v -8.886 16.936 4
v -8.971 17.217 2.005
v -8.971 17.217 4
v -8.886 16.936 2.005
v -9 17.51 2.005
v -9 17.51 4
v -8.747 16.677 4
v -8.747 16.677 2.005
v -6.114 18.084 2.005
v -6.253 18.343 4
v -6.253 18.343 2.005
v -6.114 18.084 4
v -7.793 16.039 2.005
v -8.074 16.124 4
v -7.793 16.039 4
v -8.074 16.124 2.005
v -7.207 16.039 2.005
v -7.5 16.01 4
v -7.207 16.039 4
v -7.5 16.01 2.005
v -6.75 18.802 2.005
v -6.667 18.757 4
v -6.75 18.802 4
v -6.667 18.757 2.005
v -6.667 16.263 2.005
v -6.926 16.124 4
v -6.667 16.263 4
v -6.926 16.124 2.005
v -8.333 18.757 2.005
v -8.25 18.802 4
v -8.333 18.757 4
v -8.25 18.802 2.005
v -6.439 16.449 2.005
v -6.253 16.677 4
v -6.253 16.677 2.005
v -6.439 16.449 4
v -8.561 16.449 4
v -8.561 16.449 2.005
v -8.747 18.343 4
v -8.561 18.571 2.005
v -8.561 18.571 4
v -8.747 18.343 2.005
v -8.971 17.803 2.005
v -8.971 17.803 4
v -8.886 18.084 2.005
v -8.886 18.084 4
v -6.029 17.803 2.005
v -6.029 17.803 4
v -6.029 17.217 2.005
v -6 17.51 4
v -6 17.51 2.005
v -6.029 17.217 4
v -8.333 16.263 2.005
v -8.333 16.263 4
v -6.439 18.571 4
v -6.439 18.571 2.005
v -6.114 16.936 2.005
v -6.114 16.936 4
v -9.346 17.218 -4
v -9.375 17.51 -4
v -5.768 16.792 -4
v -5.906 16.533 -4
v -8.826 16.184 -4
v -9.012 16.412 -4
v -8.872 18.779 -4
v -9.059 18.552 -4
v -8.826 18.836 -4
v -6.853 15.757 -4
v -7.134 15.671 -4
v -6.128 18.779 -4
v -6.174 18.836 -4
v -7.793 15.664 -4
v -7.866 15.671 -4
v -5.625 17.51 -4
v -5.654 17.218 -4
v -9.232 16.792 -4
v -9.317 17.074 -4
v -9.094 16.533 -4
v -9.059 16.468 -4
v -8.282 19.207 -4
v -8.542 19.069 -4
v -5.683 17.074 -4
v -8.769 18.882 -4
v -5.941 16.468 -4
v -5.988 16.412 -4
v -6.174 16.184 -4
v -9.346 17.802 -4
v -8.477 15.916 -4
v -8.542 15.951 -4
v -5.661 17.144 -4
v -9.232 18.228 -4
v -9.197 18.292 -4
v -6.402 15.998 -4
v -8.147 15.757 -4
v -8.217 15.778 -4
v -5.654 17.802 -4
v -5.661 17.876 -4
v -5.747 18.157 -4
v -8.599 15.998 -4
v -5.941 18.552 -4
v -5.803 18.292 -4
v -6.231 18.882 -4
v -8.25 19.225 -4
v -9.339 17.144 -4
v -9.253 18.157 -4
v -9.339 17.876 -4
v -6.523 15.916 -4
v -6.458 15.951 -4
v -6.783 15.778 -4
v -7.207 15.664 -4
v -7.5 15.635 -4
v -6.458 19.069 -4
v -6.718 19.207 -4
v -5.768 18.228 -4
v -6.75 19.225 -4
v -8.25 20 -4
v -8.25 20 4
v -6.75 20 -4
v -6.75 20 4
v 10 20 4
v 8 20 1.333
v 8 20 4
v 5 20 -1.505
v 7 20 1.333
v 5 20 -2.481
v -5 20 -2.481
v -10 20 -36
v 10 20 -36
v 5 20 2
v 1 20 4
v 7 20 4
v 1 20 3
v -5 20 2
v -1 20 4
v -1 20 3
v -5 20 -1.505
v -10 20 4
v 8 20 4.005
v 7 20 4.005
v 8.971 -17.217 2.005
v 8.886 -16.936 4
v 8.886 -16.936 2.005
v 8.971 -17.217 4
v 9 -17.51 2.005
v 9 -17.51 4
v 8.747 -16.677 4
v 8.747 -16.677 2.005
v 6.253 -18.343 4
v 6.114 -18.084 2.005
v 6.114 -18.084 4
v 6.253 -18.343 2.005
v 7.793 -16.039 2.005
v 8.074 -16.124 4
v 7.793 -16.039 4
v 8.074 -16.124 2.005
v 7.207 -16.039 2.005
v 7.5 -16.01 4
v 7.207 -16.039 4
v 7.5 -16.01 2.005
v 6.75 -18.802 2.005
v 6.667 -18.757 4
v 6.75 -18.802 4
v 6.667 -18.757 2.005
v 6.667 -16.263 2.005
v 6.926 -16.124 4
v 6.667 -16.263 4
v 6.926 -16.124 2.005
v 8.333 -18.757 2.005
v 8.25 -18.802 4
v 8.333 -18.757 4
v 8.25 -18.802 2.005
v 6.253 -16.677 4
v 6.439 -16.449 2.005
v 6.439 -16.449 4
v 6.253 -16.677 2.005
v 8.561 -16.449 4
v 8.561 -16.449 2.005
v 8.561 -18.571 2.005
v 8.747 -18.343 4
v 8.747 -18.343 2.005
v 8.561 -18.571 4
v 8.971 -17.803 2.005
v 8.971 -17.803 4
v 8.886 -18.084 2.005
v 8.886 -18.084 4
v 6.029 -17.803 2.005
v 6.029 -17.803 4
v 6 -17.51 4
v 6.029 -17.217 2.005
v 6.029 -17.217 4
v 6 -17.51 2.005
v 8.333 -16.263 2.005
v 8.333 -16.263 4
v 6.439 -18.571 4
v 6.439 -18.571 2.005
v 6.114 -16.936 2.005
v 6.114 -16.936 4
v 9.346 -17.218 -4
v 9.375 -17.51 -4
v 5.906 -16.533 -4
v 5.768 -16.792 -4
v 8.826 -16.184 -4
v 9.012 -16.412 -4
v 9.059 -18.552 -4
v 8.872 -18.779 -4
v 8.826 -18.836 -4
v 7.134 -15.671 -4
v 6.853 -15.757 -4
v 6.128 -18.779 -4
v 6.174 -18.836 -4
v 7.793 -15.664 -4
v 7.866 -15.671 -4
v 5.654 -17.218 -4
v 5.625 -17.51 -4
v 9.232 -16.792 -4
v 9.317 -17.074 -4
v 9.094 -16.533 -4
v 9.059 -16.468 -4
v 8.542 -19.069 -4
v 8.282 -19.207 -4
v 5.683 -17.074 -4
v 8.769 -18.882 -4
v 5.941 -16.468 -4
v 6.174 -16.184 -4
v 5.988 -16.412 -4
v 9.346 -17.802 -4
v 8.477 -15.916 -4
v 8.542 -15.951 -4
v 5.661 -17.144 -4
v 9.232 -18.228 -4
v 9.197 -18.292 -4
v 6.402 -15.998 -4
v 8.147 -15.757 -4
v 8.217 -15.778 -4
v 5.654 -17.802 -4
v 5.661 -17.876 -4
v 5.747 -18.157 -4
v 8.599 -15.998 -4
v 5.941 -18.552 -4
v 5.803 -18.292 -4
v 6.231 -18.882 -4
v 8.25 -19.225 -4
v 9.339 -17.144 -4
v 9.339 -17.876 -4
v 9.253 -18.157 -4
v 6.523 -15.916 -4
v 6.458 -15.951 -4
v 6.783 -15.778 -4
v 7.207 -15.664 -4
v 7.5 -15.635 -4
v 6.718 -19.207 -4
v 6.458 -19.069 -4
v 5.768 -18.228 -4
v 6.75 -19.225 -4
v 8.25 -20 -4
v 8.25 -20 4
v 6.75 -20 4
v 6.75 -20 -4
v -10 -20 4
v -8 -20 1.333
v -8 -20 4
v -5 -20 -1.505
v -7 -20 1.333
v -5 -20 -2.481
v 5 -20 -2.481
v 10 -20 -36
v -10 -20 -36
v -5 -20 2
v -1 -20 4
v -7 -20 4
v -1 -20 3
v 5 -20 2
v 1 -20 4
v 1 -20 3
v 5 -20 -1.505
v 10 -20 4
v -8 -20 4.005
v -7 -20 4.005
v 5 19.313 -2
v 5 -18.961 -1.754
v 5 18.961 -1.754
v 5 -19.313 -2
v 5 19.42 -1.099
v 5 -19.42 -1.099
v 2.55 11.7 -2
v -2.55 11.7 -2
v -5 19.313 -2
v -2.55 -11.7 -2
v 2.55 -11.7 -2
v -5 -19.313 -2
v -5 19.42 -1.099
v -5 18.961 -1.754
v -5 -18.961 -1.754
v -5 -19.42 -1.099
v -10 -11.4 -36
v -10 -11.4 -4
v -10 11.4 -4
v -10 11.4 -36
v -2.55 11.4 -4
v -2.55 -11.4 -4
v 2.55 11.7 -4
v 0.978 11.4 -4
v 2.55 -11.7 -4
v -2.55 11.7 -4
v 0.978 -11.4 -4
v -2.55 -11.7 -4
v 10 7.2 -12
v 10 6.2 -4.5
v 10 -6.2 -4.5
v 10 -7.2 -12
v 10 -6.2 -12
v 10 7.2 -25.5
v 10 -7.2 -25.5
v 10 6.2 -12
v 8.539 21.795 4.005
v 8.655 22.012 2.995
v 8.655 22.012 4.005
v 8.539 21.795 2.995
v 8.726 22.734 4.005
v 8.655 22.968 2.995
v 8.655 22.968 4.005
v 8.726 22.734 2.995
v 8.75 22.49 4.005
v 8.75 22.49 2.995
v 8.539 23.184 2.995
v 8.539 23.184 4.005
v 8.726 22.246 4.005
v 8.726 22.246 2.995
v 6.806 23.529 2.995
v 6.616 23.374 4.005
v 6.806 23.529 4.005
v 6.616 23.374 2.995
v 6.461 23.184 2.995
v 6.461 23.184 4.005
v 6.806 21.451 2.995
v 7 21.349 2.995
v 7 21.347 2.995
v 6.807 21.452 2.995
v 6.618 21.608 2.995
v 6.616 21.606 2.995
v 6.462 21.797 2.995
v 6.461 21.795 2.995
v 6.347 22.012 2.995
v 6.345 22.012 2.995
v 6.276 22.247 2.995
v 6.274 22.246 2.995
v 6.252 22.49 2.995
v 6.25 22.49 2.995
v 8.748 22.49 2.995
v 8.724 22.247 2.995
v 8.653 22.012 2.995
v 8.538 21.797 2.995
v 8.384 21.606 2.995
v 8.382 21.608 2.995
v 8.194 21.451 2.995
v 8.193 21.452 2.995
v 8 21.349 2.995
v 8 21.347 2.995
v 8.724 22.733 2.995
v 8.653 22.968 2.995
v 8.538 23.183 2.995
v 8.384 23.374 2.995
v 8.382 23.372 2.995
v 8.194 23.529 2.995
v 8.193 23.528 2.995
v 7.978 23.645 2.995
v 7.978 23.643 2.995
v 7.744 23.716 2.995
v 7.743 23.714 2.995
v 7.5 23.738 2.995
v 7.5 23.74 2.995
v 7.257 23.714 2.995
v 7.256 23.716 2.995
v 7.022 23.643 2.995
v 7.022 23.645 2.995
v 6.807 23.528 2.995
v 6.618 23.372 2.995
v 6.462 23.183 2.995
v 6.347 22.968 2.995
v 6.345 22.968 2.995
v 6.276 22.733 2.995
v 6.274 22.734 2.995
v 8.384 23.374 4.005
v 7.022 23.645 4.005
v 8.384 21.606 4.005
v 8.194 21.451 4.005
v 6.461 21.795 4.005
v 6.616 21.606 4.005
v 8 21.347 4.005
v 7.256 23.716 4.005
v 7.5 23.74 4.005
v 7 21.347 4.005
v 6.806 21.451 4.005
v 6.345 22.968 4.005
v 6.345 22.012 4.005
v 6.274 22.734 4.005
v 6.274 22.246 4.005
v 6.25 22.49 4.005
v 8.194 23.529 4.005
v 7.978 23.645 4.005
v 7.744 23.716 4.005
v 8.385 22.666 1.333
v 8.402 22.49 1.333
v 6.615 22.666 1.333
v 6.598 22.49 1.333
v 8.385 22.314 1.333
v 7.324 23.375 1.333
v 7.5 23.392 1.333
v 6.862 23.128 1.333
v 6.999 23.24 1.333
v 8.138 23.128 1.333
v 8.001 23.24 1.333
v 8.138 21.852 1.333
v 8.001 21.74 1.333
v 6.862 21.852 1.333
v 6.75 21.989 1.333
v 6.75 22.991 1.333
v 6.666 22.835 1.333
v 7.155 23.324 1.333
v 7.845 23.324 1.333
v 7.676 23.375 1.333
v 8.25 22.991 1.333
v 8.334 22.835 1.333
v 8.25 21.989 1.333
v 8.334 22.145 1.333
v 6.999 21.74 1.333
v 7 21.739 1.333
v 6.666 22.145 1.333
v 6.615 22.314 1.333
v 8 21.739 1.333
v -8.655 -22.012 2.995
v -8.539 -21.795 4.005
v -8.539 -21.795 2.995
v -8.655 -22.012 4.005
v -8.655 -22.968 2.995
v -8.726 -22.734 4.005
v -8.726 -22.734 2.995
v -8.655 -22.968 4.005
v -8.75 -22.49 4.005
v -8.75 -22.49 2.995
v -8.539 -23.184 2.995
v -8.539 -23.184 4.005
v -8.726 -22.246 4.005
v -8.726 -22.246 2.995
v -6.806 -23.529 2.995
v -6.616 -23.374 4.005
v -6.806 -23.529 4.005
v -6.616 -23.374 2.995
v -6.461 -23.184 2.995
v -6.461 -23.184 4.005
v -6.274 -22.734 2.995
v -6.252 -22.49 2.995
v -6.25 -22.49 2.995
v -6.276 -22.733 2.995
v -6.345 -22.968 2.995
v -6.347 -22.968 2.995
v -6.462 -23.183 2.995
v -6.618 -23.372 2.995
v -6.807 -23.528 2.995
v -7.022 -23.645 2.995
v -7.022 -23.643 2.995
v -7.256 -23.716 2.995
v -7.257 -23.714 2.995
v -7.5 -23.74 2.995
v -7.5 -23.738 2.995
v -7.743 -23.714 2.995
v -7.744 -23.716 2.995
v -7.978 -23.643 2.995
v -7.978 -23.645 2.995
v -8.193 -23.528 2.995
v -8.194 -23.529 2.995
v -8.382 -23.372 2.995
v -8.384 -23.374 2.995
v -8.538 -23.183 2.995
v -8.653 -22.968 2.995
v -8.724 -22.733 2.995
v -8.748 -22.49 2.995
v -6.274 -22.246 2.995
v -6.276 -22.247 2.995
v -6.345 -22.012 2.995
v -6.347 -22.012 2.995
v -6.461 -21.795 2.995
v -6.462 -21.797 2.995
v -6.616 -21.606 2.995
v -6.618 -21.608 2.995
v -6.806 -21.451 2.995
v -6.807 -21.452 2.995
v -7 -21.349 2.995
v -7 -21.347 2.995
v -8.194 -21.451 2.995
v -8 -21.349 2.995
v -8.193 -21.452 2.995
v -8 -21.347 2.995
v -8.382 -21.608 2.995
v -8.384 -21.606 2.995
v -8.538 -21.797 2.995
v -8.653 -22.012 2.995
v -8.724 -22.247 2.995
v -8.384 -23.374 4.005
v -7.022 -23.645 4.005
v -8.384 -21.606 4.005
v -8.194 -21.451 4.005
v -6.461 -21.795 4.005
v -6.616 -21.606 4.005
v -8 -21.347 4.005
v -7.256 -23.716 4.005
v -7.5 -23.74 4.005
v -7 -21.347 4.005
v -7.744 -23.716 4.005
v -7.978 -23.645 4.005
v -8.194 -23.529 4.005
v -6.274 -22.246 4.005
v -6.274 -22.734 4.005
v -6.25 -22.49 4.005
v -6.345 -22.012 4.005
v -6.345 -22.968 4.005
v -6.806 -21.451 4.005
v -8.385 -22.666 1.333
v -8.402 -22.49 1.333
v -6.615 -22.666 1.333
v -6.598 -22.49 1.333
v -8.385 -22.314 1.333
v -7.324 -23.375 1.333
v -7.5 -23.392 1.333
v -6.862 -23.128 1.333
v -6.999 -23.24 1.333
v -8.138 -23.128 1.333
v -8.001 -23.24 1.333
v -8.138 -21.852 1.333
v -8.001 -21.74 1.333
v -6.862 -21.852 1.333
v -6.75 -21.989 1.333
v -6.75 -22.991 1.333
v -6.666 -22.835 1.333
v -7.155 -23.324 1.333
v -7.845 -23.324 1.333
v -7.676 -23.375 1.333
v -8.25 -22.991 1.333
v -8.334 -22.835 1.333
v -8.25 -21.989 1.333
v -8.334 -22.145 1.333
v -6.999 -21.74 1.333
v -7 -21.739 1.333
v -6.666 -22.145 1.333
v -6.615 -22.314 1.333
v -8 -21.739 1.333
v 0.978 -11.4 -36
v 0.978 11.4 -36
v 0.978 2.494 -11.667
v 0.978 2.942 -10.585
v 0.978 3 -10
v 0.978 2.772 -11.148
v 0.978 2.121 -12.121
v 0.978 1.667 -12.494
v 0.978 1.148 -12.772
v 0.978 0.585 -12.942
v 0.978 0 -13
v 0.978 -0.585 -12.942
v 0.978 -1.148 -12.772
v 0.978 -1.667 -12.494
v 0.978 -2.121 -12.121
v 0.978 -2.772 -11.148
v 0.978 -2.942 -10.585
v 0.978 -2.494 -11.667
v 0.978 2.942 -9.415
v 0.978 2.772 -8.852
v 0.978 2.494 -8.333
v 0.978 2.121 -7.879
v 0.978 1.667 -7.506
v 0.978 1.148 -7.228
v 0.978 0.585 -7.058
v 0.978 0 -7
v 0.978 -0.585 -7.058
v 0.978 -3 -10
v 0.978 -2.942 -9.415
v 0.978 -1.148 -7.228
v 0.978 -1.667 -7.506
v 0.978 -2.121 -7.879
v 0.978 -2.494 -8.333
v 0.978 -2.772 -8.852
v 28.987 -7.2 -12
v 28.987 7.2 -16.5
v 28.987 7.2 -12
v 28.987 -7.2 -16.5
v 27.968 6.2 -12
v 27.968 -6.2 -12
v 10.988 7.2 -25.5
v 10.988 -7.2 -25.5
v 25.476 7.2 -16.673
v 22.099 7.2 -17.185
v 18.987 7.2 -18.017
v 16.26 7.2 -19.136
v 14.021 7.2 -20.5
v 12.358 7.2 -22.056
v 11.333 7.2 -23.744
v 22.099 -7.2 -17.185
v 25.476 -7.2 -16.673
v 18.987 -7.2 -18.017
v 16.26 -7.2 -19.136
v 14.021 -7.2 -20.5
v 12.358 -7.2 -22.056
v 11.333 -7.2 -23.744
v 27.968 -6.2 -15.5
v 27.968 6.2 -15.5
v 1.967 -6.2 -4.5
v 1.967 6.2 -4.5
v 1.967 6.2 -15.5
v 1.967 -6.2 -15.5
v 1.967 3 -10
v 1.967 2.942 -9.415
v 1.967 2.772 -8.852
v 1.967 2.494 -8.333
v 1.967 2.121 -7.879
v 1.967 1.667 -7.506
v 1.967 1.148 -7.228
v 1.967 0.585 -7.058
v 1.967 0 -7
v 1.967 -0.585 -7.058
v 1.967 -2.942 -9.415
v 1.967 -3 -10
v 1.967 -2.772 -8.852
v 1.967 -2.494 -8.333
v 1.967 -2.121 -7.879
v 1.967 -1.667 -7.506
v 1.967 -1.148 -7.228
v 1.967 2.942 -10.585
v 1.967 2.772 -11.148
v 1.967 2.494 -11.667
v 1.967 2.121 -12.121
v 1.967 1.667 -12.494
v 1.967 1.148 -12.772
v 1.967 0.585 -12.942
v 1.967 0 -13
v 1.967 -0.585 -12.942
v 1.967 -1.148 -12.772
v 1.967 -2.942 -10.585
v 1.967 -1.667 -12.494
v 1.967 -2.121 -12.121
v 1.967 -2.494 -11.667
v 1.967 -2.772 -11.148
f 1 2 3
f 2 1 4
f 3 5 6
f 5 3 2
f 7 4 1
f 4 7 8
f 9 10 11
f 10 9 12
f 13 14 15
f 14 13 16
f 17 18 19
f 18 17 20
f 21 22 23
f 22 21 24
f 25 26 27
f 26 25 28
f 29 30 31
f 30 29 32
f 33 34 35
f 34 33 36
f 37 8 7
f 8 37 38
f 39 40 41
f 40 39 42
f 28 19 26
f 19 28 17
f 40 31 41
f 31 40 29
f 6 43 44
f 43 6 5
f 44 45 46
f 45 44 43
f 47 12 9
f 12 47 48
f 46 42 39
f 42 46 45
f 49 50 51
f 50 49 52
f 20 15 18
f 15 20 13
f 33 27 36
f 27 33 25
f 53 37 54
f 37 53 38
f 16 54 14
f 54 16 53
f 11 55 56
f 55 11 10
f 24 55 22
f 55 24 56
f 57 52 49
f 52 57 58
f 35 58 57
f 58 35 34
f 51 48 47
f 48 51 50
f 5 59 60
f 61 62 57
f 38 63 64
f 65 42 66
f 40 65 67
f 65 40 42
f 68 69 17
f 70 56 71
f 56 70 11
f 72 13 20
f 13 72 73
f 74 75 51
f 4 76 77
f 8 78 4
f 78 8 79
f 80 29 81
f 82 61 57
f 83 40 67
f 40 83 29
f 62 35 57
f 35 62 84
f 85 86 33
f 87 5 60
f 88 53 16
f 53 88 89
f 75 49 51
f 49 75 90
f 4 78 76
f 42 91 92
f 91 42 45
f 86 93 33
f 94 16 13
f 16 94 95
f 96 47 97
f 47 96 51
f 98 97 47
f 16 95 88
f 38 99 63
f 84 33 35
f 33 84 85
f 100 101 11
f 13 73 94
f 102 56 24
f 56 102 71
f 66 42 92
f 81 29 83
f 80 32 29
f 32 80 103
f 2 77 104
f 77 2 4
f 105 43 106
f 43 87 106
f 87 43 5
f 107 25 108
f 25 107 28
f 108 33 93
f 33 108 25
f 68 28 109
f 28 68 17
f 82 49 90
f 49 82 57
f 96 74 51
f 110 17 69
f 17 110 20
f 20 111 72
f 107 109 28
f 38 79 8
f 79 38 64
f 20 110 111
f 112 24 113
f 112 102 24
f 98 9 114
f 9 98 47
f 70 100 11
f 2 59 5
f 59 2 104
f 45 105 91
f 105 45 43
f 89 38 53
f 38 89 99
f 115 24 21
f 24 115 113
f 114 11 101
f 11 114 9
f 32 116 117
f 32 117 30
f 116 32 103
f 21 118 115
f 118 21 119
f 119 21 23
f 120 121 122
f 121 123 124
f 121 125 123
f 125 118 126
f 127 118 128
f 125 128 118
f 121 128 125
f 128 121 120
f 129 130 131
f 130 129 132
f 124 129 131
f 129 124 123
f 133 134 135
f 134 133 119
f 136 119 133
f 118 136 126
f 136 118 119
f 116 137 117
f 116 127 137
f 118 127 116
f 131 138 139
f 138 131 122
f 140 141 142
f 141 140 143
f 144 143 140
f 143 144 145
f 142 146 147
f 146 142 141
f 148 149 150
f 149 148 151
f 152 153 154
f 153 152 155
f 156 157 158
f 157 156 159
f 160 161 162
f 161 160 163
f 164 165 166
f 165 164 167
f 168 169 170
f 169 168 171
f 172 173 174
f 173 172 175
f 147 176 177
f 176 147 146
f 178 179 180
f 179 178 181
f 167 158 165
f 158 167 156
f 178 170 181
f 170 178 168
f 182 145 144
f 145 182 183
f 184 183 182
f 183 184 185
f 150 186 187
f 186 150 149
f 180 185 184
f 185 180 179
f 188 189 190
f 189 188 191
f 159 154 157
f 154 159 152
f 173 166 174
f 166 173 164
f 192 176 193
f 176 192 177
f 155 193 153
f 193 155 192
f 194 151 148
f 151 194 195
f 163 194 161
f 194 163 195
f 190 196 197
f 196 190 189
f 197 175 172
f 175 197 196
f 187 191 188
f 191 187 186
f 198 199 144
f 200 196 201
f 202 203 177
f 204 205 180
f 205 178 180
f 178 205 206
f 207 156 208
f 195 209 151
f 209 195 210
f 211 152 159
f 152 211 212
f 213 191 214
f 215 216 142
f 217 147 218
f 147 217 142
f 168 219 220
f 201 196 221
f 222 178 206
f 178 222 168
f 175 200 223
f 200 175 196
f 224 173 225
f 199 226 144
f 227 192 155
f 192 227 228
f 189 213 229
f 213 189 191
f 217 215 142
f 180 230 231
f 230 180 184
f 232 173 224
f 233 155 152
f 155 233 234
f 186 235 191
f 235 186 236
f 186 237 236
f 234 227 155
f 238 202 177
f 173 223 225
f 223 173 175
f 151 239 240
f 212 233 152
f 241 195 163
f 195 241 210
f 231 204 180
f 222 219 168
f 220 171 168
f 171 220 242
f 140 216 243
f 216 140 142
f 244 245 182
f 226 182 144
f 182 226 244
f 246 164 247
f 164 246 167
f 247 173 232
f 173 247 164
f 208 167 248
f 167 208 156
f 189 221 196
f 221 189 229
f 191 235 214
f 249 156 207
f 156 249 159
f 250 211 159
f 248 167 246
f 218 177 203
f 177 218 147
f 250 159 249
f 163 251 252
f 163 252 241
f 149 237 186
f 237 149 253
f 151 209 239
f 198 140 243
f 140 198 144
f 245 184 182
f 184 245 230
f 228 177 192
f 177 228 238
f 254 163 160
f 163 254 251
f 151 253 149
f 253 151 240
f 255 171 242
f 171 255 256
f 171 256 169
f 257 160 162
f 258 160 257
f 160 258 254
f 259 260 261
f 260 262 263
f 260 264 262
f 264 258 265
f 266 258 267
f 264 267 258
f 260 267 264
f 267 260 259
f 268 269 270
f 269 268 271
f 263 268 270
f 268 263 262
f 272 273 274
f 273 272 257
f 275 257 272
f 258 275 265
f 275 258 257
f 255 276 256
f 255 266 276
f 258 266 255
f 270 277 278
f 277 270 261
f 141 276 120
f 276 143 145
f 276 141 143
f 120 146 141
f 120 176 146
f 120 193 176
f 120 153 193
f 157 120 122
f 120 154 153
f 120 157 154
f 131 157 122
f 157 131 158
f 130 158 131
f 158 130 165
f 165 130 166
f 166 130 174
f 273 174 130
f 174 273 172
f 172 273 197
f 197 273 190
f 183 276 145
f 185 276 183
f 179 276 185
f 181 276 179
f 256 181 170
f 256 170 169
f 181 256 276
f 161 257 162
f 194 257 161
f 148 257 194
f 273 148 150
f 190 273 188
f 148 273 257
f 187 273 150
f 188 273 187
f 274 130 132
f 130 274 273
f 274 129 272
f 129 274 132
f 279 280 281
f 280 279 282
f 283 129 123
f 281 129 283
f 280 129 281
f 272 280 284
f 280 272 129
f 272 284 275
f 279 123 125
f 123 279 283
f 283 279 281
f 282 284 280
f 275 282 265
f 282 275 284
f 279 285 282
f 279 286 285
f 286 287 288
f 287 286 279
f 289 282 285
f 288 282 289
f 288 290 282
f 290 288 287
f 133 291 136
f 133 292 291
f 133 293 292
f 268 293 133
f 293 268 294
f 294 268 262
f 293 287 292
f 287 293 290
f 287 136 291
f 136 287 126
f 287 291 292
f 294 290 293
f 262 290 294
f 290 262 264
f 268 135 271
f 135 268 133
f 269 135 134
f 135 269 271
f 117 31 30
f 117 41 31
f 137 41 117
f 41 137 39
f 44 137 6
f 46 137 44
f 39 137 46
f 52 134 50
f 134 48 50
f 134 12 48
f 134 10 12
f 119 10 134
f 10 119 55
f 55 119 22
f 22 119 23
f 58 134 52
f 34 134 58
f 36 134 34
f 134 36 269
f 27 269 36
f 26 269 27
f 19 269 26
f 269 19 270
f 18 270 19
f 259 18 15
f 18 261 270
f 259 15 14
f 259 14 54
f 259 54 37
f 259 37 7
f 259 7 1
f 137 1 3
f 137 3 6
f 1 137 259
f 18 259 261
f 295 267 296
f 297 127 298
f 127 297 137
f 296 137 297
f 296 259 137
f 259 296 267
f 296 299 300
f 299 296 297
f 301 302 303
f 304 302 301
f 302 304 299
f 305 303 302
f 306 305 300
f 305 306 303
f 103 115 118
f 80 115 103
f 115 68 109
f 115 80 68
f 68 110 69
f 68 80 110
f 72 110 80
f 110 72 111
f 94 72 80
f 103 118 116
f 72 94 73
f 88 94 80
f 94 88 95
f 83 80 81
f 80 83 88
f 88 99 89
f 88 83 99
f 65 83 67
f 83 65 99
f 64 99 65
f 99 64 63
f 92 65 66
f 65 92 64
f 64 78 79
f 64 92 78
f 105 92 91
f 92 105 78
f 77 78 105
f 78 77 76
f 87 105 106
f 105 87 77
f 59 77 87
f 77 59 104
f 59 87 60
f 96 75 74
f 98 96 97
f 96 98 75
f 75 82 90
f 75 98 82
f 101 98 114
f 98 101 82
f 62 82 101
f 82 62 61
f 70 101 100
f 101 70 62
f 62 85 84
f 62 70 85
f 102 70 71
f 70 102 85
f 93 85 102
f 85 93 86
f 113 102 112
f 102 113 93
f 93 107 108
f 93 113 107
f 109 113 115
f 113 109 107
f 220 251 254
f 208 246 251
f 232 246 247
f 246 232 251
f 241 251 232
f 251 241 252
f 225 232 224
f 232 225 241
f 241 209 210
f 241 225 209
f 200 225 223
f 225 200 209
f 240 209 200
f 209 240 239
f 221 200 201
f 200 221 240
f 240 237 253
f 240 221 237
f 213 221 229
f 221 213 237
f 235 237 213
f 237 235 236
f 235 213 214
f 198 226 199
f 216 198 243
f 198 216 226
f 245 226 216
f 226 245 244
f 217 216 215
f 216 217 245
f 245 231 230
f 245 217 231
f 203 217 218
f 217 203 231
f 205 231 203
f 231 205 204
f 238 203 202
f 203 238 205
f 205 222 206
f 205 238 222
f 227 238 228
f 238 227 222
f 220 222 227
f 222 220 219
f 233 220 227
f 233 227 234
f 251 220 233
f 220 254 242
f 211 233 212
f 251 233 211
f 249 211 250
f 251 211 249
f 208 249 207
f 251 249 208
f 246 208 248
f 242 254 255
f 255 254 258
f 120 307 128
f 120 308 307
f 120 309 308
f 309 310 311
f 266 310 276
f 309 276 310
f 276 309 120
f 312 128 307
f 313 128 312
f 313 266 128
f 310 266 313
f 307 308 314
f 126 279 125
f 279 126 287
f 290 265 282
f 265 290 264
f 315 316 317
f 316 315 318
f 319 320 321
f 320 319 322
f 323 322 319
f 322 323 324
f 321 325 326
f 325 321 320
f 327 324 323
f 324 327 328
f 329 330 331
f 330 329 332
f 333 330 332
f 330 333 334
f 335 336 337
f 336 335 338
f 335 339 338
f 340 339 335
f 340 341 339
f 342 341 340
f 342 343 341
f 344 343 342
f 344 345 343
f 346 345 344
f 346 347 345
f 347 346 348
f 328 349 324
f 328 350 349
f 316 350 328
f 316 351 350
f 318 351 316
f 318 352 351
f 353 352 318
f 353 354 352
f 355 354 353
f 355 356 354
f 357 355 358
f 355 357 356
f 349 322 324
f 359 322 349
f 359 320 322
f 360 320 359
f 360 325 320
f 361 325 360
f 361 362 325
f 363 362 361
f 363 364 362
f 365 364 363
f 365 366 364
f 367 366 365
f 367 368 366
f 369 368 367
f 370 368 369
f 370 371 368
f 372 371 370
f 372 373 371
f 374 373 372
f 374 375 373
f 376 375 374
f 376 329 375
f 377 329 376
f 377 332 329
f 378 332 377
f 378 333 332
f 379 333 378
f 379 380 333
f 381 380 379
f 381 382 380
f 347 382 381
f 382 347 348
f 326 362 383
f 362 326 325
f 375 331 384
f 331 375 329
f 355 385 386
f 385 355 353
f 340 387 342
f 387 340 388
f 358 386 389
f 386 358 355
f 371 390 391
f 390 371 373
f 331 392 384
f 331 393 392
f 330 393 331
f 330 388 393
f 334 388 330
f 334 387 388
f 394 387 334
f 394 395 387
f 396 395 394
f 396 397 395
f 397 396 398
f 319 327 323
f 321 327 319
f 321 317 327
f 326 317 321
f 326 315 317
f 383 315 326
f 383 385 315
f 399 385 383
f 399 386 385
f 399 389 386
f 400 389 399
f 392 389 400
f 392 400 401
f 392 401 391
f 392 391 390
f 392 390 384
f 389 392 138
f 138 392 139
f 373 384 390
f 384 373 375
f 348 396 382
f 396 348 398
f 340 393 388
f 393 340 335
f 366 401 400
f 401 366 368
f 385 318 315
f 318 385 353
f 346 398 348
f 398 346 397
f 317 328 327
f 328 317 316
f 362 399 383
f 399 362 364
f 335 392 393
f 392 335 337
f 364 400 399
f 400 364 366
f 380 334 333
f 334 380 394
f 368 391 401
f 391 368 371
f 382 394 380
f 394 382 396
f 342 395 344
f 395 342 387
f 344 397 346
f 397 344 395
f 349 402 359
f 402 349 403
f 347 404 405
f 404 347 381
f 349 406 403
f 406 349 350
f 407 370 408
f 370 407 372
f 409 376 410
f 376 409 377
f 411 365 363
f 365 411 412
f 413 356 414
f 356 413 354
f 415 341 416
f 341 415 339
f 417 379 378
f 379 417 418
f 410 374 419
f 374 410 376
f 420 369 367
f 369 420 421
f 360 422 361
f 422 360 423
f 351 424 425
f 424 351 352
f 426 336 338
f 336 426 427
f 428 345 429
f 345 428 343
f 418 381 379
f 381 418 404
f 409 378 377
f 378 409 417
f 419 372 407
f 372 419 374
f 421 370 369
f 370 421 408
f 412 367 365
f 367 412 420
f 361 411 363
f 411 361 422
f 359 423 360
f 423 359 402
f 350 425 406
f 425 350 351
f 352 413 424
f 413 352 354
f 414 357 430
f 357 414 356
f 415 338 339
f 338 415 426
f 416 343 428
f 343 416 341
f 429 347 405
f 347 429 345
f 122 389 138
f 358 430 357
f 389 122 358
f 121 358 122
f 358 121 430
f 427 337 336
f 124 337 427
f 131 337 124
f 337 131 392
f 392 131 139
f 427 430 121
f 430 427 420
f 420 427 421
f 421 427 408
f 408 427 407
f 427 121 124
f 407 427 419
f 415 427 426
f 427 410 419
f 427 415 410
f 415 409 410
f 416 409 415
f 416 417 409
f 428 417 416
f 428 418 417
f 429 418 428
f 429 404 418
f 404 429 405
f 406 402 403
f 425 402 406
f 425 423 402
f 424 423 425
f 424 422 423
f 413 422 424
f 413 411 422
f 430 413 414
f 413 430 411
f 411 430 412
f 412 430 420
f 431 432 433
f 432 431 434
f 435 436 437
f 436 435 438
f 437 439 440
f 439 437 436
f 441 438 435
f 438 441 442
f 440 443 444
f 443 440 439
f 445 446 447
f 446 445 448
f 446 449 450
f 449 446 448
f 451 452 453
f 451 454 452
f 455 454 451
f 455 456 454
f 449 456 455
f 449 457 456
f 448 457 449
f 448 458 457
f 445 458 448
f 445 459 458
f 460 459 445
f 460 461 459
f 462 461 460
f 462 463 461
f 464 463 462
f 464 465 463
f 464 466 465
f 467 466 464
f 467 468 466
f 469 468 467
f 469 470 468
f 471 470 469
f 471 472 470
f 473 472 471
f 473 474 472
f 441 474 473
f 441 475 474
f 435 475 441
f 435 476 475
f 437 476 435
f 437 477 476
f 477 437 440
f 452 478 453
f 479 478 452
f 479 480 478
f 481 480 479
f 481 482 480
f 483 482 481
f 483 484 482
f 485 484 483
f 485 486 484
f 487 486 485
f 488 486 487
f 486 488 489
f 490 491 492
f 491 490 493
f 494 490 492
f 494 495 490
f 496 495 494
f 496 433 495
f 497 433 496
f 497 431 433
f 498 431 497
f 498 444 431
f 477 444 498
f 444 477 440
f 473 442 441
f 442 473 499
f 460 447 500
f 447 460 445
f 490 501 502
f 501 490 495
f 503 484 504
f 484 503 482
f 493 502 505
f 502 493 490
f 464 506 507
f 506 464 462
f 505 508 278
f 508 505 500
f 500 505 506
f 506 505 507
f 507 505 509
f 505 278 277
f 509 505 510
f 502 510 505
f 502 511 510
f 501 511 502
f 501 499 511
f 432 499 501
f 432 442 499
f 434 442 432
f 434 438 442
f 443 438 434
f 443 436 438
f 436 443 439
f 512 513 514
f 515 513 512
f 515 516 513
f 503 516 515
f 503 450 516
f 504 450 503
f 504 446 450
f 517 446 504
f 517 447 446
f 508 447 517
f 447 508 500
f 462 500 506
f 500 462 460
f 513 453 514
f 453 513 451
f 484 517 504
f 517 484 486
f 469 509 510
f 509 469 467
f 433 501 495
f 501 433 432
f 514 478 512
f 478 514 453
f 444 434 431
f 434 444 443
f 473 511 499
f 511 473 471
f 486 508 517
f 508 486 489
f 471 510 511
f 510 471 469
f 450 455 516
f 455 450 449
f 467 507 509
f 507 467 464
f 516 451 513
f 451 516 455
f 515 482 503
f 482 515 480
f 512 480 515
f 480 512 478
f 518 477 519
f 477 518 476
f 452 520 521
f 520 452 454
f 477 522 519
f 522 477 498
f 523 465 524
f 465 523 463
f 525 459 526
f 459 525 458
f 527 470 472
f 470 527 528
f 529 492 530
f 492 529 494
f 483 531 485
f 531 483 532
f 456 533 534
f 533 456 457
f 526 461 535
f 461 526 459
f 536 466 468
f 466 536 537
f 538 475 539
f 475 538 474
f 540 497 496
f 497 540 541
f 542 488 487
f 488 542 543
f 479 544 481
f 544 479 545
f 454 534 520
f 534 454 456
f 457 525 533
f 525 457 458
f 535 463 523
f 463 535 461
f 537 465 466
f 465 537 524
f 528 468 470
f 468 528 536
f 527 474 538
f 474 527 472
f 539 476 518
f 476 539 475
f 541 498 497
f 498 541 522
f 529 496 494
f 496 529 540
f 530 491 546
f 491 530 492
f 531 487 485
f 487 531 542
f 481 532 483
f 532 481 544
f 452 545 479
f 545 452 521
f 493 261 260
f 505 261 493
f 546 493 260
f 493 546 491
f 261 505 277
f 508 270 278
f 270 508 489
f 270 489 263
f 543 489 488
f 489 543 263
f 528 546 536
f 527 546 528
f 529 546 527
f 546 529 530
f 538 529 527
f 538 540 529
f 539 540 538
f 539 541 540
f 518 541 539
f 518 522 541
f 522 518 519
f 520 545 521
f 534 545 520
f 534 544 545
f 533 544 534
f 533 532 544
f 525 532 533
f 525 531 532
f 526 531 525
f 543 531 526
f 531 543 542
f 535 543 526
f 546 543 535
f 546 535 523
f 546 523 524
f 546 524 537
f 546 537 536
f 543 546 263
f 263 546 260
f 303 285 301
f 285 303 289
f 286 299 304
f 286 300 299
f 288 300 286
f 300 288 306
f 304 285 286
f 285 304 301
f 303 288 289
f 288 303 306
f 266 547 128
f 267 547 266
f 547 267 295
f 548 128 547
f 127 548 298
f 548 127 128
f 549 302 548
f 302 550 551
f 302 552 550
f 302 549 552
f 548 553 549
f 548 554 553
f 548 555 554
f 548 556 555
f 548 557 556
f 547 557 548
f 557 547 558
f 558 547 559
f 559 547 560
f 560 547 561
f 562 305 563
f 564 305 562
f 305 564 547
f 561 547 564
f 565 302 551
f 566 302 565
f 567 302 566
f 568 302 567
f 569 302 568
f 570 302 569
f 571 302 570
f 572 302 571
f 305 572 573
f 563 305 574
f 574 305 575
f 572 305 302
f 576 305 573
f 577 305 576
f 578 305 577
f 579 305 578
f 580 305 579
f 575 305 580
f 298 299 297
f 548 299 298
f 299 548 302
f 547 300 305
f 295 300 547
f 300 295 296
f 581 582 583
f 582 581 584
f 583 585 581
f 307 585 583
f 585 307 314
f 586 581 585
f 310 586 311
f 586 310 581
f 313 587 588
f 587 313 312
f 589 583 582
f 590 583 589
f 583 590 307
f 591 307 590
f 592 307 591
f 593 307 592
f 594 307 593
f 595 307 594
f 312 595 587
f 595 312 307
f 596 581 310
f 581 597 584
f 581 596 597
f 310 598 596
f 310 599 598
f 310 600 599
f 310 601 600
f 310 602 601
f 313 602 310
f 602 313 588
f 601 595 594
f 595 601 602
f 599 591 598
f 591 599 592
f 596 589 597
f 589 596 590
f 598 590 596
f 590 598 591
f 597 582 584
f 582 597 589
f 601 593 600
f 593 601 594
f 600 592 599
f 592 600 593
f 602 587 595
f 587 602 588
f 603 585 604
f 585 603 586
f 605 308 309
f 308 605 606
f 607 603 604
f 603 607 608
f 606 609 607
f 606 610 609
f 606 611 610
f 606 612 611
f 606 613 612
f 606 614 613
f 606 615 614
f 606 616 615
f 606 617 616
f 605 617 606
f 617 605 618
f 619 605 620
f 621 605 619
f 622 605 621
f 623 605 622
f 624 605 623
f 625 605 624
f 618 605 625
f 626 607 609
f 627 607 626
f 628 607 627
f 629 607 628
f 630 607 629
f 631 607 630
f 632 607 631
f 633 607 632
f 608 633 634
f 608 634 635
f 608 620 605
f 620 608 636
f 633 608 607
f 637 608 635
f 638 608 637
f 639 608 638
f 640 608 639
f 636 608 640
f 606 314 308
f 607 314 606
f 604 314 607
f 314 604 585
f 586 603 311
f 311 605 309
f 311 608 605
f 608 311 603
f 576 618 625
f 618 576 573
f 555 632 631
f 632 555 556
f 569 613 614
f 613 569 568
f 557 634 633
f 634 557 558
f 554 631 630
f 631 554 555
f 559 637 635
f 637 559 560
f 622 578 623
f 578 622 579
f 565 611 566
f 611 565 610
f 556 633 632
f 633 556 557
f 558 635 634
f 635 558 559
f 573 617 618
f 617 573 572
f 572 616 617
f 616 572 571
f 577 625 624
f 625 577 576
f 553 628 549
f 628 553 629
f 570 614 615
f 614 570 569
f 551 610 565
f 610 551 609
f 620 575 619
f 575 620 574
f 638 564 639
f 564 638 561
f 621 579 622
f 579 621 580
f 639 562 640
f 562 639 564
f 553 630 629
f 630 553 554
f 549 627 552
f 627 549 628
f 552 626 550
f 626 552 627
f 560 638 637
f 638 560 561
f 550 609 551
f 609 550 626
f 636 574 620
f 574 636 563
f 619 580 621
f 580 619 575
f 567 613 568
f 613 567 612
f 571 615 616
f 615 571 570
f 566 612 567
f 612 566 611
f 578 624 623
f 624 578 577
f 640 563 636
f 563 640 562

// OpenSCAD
/*
    grid tile train tube track motor house 
    
    n20 dc gear motor 10x12x25
    
    Mini N20 Gear Reduction Motor DC 3V-6V 55RPM Slow Speed
*/
include <train_tube_track.scad>;

motor_length = 26;
motor_height = 11;
motor_width = 12.4;
motor_holder_wall = 1;

//translate([0,0,height])
union() {
//    straight_track_h_double_plug(grid);
difference() {
    straight_track_double_plug(grid);

    /* cut out gear opening */
    translate([0,0,-inner_height+d])
    cube([ship_width*house_gear_width_factor,
    ship_length*1.95, inner_height], center=true);
}

difference() {

    union() {
        translate([0,0,-height/2-outer_height/2]) 
        difference() {
            cube([outer_width, grid, height], center=true);
            translate([-outer_width/2+gear_thickness/2,0,d])
            cube([outer_width, ship_length*1.9, height+3*d], center=true);
        }
        /* N20 motor block holder */
        translate([motor_length/2+gear_thickness/2+d+1,0,
         -gear_radius-inner_height/2-motor_height/4-motor_holder_wall*2-4])
        difference() {
            cube([motor_length+motor_holder_wall*2, 
                motor_width+motor_holder_wall*2,
                motor_height/2+8], center=true);
            translate([(motor_length+motor_holder_wall*2)/2,
                0, -(motor_height/2+8)/2])
            scale([2, 1, 1])
            rotate([90,0,0])
            cylinder(r=8+1, h=motor_width+motor_holder_wall*2+0.1, center=true);
        }
    }
    
    /* N20 motor block cutout*/
    translate([motor_length/2+gear_thickness/2-d+1,0,-gear_radius-inner_height/2])
    cube([motor_length, motor_width, motor_height], center=true);
    
    /* N20 motor axis cutout*/    
    translate([0,0, -gear_radius-inner_height/2])
    rotate([0,90,0])
    cylinder(d=6,h=grid,center=true);
}

//translate([13+outer_width/2,0,-height-outer_height/2+4])
//difference() {
//    cube([26, grid, 8], center=true);    
//    translate([0,0,-4 + 2]) // -5: cube +2 bottom height
//    rotate([0,0,90])
//    grove_2x1(3, 12);
//}

//translate([0,0,-gear_radius-inner_height/2])
//rotate([0,90,0])
//ttt_gear(3, 0.5);
}

//translate([3*grid/4, 0, -height])
//platform();
